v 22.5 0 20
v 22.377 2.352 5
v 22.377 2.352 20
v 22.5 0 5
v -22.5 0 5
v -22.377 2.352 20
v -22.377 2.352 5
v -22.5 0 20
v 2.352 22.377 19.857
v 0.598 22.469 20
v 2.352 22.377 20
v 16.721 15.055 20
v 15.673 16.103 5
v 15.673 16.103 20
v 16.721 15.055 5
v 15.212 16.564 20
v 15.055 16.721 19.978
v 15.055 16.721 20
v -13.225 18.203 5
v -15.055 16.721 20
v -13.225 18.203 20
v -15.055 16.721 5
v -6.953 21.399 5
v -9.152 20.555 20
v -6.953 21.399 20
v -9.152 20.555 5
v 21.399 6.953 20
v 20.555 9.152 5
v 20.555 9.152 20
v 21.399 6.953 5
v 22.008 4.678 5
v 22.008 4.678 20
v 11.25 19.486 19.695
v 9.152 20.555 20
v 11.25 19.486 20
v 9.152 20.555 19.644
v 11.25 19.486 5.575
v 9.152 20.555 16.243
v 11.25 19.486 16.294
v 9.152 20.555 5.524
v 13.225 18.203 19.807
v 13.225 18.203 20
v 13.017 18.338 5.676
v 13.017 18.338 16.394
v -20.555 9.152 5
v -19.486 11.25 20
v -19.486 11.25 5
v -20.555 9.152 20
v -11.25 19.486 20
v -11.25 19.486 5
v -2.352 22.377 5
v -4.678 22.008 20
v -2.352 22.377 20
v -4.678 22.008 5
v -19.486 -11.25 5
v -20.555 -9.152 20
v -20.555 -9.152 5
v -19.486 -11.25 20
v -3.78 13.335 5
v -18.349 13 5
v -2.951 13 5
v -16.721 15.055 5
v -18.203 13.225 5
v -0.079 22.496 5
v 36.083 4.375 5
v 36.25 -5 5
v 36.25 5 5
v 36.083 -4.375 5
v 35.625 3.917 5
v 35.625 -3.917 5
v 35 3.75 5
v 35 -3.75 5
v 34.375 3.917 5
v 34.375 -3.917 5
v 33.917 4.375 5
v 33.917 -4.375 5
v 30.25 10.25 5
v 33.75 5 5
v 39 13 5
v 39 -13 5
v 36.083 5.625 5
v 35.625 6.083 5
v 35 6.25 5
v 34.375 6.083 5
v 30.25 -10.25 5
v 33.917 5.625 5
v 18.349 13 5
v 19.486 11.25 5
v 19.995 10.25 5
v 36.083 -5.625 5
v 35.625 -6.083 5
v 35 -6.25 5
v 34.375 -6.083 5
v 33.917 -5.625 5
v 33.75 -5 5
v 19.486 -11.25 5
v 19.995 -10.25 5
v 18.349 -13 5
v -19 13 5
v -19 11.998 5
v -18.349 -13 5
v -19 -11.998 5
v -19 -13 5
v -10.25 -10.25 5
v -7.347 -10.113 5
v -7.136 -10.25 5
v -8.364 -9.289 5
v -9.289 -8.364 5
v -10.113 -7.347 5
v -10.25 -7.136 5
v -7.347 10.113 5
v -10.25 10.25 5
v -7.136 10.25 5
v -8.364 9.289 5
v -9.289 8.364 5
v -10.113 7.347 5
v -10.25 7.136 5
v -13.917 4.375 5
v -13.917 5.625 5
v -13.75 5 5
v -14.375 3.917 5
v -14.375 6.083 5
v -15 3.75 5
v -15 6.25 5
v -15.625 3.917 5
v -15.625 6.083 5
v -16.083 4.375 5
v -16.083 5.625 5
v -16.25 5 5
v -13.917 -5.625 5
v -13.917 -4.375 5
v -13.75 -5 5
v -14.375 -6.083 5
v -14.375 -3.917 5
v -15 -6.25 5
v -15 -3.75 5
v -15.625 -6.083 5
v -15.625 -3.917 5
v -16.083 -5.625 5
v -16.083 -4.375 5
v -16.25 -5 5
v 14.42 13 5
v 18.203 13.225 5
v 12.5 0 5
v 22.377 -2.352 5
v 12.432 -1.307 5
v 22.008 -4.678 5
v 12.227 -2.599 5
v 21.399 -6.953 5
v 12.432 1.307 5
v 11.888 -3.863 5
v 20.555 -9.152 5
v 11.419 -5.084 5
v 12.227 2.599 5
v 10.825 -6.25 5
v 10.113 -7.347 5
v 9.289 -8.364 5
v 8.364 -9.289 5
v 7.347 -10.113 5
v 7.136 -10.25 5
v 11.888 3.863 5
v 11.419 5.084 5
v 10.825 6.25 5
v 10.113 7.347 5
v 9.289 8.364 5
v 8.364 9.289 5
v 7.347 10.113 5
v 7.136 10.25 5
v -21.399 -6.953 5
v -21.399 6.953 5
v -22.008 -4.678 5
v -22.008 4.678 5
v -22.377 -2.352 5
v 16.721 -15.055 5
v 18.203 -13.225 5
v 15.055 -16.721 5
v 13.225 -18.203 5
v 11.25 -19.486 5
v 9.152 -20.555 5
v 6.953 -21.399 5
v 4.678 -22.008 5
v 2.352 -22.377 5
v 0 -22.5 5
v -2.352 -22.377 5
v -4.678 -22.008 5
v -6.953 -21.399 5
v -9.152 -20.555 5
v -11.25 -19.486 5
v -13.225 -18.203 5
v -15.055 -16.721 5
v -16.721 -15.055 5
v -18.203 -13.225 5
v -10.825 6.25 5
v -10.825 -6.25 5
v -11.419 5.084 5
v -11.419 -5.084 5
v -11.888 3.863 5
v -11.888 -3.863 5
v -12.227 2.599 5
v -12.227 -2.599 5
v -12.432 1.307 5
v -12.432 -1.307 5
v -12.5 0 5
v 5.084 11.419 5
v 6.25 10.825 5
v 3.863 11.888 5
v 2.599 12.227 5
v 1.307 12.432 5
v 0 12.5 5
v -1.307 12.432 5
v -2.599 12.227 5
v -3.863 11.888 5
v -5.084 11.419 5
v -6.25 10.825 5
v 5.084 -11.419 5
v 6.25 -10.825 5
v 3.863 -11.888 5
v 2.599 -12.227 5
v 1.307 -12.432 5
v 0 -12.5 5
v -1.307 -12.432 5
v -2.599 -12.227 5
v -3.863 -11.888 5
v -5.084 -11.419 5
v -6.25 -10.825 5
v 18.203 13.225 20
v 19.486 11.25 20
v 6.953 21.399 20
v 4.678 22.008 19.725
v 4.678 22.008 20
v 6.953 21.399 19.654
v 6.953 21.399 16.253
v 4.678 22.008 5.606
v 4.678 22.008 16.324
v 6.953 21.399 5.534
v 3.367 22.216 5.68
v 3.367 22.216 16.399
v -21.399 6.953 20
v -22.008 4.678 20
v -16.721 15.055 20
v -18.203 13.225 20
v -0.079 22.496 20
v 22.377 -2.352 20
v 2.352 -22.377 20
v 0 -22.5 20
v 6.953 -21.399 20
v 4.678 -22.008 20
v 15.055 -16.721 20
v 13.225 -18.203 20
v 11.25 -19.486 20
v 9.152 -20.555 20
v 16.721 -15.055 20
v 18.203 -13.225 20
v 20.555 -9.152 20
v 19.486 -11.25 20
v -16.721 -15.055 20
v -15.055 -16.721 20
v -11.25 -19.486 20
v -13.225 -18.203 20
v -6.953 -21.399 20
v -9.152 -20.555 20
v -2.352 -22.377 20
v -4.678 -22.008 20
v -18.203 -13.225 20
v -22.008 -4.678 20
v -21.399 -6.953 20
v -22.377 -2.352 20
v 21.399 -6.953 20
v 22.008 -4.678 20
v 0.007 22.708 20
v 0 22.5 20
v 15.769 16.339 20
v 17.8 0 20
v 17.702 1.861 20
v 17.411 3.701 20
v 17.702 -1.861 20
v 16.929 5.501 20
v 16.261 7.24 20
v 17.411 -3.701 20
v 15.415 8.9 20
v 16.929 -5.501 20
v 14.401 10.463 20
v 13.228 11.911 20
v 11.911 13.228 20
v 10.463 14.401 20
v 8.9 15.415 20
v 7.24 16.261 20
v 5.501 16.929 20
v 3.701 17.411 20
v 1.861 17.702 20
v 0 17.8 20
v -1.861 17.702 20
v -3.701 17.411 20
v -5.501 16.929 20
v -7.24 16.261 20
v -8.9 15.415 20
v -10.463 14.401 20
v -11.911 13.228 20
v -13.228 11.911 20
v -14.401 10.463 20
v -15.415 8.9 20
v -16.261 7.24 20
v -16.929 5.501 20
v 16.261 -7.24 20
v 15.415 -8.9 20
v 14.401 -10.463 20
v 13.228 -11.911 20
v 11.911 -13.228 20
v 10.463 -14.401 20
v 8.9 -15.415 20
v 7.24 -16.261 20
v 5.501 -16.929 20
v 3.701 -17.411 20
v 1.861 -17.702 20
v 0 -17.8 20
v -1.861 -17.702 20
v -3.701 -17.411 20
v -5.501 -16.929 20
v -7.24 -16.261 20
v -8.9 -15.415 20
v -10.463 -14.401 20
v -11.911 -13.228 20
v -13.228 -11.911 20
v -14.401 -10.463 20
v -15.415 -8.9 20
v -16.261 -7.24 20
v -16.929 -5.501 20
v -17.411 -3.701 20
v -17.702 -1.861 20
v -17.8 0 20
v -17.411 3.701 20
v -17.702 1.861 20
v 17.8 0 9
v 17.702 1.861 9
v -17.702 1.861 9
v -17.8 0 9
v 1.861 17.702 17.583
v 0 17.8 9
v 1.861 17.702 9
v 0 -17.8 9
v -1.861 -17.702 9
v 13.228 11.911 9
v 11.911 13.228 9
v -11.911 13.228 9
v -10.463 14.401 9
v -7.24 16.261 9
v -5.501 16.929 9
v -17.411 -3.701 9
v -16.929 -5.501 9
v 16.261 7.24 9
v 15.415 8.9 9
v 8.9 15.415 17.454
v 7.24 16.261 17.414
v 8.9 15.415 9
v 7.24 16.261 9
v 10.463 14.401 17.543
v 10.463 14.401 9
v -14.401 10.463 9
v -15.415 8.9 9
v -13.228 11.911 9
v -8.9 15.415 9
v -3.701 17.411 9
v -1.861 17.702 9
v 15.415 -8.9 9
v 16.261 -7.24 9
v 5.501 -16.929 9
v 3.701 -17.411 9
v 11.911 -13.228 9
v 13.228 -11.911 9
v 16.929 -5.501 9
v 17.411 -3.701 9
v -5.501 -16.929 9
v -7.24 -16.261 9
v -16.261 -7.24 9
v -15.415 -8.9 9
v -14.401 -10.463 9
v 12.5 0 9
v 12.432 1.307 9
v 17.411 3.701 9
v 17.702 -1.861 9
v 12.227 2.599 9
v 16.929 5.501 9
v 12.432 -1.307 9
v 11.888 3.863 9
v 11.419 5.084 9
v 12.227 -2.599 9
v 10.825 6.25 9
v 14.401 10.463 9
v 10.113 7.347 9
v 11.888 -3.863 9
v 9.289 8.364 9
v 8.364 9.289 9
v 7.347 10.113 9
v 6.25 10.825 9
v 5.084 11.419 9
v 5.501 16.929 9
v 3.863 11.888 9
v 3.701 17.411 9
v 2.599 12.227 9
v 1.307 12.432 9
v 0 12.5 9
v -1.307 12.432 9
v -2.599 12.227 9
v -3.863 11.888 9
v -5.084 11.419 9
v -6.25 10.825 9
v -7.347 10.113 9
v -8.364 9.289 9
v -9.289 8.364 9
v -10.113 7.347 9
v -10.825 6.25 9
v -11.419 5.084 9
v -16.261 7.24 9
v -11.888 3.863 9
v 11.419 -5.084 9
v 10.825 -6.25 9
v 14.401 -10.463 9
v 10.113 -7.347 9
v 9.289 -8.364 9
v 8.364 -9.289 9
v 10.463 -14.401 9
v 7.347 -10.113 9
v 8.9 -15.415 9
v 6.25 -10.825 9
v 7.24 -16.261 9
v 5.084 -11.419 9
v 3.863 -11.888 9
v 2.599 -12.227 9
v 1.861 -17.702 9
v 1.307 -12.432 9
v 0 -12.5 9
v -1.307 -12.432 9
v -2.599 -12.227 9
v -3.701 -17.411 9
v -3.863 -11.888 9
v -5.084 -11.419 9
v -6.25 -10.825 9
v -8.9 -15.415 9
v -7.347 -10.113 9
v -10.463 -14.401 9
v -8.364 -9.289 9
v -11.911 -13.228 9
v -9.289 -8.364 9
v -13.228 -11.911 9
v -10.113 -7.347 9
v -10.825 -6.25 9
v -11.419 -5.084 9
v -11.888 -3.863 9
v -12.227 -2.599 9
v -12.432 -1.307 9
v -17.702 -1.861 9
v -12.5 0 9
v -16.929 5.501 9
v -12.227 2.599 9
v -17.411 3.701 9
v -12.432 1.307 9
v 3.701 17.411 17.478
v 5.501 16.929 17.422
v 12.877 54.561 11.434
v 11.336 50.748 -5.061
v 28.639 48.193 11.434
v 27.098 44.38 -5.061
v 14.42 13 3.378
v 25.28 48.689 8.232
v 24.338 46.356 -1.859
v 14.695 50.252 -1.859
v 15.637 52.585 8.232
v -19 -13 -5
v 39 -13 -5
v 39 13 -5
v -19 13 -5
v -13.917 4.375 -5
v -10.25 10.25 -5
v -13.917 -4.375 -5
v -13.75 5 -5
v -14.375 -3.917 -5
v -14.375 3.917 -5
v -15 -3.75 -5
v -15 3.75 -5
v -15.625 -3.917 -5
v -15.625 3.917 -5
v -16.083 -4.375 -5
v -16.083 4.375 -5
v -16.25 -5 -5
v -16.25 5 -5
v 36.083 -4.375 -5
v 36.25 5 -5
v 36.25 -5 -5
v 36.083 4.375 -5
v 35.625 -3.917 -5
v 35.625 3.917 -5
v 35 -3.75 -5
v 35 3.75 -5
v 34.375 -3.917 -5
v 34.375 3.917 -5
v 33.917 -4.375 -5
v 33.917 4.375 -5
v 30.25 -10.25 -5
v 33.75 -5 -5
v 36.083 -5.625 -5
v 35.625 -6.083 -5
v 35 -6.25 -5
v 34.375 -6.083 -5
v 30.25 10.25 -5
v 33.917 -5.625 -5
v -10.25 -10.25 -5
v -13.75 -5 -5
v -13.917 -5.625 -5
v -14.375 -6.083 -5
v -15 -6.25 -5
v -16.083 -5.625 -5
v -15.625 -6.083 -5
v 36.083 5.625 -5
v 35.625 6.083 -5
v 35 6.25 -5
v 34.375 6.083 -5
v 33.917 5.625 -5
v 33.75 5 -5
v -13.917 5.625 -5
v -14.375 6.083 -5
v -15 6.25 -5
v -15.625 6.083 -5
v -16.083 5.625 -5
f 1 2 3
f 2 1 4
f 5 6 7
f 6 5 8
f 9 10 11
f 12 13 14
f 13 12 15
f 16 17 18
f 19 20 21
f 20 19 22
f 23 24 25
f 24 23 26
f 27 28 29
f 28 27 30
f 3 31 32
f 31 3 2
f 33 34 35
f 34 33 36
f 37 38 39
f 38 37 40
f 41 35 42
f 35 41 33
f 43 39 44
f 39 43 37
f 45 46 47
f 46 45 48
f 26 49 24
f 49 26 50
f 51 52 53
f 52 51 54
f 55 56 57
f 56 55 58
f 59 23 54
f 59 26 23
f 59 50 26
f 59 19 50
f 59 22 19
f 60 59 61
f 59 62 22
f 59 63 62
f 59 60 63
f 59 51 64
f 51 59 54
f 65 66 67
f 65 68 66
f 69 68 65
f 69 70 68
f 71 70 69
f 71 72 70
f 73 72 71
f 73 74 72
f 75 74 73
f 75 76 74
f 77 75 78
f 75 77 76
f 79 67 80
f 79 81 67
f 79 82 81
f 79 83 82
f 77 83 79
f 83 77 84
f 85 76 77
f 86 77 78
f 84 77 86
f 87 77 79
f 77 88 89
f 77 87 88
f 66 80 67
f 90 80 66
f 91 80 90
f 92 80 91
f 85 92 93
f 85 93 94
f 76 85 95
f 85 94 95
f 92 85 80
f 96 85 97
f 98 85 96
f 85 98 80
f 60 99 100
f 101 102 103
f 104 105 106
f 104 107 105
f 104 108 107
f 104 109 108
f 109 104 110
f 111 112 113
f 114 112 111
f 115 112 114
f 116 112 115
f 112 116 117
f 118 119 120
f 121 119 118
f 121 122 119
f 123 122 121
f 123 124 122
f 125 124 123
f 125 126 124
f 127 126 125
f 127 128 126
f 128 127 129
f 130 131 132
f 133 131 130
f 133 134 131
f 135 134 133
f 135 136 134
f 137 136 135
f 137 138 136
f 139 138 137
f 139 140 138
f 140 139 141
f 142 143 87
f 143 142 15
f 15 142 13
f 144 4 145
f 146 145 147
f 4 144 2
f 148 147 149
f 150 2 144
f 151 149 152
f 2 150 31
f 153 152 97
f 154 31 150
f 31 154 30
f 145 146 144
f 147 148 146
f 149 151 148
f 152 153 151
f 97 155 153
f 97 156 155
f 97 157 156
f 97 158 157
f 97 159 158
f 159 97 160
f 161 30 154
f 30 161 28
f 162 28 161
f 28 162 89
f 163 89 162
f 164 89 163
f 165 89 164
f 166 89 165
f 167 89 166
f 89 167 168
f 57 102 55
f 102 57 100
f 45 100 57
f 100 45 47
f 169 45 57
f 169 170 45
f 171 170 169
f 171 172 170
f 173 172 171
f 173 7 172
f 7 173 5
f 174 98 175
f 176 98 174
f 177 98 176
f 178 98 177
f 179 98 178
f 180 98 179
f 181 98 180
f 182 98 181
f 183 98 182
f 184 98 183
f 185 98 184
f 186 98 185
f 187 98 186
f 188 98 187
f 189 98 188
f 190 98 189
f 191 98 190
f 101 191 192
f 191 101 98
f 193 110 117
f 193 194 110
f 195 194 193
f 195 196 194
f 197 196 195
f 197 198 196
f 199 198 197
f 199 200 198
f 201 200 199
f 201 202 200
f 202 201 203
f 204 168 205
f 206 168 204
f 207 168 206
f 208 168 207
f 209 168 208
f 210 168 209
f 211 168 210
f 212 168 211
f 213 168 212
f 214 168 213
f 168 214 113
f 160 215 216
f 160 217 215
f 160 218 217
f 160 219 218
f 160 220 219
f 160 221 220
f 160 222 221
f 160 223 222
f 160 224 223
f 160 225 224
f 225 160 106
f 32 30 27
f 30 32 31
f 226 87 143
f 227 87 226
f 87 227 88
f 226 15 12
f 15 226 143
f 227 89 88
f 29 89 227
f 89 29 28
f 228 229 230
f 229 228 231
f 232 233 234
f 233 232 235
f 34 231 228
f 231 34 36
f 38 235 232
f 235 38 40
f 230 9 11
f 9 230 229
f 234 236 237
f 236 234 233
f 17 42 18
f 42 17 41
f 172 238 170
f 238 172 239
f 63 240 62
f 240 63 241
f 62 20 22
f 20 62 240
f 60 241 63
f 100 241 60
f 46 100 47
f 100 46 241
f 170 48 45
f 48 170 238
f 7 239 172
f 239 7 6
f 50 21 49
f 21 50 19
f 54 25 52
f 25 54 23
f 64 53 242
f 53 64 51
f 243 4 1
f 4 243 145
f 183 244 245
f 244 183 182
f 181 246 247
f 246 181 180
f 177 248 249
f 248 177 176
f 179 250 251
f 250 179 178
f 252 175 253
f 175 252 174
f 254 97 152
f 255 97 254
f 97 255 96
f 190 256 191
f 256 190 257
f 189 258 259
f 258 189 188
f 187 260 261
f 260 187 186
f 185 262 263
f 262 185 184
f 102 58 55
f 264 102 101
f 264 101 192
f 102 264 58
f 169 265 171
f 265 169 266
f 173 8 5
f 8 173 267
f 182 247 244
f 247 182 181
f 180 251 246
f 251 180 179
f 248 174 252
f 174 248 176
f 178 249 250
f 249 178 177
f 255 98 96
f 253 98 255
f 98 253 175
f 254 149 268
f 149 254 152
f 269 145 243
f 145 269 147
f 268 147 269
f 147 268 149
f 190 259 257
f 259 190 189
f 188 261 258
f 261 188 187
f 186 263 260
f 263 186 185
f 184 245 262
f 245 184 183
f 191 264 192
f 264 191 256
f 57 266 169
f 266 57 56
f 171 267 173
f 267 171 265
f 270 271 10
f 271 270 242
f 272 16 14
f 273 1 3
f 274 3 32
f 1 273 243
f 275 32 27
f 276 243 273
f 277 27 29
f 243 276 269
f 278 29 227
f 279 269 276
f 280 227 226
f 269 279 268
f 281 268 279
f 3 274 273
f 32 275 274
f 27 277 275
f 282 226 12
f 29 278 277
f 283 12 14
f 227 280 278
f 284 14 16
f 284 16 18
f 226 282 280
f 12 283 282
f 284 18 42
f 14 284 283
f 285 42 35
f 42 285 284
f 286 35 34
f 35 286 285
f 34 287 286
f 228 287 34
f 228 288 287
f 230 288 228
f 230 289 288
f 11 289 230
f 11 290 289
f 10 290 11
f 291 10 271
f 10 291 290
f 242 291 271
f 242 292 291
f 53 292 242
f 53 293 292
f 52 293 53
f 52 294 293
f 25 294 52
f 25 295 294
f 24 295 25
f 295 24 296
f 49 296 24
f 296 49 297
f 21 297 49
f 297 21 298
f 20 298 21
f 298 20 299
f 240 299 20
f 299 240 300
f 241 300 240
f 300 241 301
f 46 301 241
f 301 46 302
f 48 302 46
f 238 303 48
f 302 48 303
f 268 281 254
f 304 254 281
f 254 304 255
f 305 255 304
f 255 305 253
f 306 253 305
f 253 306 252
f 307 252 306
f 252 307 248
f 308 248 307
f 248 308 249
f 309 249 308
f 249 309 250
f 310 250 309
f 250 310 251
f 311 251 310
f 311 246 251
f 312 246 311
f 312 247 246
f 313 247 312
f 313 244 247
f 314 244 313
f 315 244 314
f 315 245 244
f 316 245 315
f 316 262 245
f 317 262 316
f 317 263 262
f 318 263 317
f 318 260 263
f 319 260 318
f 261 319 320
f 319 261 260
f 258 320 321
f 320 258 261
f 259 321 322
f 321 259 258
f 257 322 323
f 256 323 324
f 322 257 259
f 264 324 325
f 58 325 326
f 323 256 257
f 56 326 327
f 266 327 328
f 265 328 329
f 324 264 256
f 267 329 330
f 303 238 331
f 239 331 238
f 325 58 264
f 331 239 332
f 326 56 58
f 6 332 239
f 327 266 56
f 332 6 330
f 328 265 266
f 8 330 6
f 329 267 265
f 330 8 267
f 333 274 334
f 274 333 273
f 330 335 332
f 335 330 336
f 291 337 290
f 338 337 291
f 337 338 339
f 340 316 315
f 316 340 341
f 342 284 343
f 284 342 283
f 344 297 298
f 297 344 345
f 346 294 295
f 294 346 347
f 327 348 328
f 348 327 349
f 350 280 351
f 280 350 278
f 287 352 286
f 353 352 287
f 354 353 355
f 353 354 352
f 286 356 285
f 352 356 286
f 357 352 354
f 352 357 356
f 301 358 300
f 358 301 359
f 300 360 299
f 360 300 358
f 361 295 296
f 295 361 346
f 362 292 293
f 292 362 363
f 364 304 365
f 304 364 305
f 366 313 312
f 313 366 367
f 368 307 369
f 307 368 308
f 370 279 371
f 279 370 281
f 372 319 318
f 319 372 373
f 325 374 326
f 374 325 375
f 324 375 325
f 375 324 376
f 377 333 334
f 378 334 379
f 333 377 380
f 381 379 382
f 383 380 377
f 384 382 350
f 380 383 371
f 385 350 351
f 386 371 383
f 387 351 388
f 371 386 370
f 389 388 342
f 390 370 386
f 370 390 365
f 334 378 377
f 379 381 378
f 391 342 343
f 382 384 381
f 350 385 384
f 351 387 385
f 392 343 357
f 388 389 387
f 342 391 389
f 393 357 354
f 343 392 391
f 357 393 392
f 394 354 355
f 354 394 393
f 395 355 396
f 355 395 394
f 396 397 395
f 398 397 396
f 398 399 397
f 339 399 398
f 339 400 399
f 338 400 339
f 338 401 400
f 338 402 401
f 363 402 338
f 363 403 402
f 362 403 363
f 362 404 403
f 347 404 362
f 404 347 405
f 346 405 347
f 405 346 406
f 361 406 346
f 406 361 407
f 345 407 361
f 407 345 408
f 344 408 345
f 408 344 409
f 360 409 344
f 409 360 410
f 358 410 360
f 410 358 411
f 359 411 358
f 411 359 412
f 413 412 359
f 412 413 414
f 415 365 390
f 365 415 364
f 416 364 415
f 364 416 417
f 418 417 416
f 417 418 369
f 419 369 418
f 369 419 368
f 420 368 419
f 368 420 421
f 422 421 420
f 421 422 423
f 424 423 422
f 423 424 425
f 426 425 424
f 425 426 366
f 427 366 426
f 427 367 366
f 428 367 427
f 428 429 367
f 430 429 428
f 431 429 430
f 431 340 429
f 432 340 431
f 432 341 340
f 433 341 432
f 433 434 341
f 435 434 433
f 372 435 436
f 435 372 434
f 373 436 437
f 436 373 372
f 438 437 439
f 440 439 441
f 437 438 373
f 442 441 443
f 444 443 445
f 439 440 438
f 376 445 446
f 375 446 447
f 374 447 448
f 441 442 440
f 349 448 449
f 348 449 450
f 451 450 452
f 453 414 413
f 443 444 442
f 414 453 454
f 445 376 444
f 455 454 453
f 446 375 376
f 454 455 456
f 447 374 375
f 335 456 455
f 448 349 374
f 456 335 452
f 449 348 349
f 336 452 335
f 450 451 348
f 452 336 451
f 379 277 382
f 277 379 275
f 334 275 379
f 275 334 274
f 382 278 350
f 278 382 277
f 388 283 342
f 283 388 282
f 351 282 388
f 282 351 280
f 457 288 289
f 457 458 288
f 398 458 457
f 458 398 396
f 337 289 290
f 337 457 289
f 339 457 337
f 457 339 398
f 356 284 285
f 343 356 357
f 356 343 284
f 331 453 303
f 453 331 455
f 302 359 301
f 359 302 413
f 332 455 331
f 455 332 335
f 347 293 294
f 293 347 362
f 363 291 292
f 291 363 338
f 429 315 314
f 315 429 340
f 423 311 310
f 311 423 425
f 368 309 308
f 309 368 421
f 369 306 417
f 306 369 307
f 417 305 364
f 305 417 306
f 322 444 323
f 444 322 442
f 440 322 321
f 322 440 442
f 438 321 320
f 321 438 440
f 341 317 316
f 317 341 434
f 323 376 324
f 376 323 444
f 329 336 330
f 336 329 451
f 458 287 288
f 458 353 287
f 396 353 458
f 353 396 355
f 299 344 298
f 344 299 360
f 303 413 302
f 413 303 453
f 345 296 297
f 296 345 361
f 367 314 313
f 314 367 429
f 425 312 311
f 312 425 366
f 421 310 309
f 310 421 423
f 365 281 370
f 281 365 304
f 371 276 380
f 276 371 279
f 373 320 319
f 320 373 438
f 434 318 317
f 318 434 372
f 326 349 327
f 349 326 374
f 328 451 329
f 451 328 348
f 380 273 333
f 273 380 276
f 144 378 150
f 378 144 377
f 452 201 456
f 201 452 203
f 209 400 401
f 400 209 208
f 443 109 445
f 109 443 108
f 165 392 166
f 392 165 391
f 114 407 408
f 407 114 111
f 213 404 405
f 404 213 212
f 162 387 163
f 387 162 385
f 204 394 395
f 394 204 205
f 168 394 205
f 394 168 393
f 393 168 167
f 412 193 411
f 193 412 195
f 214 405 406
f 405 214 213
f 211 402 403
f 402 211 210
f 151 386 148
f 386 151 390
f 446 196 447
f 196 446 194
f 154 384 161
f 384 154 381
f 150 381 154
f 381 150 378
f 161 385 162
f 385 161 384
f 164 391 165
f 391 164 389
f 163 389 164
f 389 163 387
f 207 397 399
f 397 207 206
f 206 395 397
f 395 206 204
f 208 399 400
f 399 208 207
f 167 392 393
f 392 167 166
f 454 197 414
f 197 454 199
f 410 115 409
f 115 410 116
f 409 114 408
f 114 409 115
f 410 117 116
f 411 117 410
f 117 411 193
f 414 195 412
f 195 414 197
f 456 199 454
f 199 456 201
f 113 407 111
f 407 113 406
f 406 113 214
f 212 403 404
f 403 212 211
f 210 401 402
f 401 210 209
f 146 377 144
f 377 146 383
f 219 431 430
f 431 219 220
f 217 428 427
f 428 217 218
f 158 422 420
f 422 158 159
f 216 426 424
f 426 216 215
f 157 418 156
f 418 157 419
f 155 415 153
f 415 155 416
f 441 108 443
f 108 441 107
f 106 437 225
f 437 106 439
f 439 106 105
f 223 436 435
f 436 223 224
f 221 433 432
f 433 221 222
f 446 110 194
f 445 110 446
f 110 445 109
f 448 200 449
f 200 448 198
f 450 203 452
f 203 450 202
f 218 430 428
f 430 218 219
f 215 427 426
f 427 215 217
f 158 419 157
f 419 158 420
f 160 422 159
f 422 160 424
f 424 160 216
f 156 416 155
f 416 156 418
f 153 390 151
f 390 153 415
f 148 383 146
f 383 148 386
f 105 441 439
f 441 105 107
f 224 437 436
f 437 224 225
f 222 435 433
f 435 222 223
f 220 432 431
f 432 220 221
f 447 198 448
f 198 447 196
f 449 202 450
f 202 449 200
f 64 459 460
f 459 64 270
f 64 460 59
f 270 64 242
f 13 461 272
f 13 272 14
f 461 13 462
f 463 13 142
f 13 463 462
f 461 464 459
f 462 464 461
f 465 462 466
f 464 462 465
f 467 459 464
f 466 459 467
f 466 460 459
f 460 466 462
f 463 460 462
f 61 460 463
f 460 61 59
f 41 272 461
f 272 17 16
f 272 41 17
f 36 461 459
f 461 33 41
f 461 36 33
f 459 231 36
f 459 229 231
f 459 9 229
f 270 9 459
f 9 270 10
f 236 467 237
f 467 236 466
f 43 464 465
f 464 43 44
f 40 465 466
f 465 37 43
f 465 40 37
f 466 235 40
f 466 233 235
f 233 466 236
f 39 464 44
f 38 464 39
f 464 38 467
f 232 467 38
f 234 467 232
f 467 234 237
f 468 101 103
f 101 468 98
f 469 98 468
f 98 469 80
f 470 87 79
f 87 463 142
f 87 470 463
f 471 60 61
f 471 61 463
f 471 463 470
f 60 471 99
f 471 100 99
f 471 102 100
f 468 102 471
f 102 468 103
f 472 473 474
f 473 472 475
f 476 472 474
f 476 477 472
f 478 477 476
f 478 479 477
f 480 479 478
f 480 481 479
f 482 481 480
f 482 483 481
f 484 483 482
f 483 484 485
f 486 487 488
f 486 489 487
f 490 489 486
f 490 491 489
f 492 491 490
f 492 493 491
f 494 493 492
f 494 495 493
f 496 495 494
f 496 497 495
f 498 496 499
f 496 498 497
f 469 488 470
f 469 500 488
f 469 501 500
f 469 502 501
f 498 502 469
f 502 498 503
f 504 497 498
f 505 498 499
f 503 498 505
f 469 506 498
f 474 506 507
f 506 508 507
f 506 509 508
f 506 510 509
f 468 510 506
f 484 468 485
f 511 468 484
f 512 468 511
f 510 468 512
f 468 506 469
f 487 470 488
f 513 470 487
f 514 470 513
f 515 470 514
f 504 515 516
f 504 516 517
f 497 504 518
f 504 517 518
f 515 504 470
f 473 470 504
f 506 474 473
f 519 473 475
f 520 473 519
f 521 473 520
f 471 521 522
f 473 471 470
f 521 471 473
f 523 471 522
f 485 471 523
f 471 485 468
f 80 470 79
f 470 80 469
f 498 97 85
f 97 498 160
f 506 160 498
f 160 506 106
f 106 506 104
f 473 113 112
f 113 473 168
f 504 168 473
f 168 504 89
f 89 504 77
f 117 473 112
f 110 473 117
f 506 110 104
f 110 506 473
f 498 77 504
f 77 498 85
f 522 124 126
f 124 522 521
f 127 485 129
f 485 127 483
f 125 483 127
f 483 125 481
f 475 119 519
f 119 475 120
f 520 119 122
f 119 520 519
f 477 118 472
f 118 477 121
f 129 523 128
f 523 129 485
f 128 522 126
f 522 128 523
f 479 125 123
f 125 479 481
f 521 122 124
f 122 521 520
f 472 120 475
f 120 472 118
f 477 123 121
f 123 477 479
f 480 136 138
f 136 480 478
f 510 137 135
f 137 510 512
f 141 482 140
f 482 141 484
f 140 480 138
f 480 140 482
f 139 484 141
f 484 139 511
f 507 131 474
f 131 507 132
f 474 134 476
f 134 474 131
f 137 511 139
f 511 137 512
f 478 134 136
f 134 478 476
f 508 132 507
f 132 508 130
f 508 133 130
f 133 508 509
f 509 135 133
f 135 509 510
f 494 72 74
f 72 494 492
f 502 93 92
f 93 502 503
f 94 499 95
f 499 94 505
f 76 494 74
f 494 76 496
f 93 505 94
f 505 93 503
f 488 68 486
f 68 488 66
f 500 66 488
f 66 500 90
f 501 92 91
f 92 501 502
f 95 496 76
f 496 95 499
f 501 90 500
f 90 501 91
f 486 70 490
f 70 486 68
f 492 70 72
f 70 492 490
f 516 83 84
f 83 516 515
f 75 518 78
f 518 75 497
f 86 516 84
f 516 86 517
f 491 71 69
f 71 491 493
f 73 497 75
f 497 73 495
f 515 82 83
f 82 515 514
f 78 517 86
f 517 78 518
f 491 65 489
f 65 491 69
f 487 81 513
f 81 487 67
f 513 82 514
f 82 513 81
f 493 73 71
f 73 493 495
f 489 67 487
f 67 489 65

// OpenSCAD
$fn=20;

difference(){
union(){
translate([0,0,5])
difference(){
    cylinder(d=45,h=15,$fn=60);
    translate([0,0,4])cylinder(d=35.6,h=12,$fn=60);
    translate([0,0,-1])cylinder(d=25,h=12,$fn=60);
}

difference(){
rotate([0,0,-22])
rotate([-14,0,0])
translate([0,30,16])
rotate([90,0,0])
difference(){
cube([17,17,42],center=true);
cube([10.4,10.4,42],center=true);
}
translate([0,0,5])cylinder(d=35.6,h=16,$fn=60);
translate([0,0,25])cube([100,100,10],center=true);
}


$fn=12;
translate([10,0,0])rotate([0,0,90])
difference(){
cube([26,58,10],center=true);
cube([20.5,40.5,12],center=true);
translate([5,25,-6])cylinder(d=2.5,h=12);
translate([-5,25,-6])cylinder(d=2.5,h=12);
translate([-5,-25,-6])cylinder(d=2.5,h=12);
translate([5,-25,-6])cylinder(d=2.5,h=12);
}
}
translate([10,0,-1])rotate([0,0,90])
cube([20.5,40.5,12],center=true);
}
